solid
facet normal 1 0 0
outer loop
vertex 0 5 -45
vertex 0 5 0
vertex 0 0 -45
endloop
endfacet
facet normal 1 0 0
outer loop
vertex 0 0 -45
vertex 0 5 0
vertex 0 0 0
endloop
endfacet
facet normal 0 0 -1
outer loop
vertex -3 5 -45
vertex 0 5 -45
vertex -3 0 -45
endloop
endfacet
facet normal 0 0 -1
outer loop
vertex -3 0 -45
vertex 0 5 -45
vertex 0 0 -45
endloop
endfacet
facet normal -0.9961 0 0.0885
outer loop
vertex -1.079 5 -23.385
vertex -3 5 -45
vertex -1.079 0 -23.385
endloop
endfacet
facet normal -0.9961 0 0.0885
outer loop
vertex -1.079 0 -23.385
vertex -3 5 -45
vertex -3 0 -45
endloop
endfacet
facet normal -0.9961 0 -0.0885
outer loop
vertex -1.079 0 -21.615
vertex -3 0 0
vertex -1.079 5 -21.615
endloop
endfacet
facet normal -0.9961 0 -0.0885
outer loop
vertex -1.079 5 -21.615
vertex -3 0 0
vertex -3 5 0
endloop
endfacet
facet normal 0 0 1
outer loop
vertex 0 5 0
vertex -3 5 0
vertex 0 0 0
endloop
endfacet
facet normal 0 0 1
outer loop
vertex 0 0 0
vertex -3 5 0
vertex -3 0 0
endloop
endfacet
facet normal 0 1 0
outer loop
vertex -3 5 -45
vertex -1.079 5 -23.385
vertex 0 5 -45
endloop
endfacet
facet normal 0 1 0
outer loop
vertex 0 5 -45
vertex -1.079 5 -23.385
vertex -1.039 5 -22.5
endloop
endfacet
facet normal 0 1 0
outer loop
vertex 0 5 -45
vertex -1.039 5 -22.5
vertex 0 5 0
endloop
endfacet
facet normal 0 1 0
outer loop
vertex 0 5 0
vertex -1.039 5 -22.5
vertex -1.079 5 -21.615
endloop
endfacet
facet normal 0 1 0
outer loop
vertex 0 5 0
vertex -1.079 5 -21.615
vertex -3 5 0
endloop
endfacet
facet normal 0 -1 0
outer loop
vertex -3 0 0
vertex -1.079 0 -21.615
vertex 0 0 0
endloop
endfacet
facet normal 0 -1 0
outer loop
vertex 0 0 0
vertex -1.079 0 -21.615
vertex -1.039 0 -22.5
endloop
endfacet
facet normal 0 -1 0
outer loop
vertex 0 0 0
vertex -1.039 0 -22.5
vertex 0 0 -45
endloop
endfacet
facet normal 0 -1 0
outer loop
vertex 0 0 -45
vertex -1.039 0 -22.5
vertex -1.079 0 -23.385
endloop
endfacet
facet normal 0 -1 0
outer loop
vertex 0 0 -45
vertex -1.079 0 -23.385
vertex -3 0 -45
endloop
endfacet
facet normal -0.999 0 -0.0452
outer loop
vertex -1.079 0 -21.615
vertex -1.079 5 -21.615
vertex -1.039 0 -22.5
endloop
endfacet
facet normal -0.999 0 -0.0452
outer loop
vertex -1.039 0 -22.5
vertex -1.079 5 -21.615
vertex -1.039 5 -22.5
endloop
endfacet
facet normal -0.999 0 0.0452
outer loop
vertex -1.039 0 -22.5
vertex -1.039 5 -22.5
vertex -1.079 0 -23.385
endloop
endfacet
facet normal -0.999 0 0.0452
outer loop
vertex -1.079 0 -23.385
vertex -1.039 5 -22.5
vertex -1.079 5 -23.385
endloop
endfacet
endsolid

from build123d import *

# Parameters (mm, degrees)
SALIENTE_EXTRUIR1_DEPTH = 5
REDONDEO1_R             = 10


with BuildPart() as part:
    # Croquis1 → Saliente-Extruir1 (new body)
    with BuildSketch(Plane(origin=(0, 0, 0), x_dir=(1, 0, 0), z_dir=(0, 1, 0))):
        Polygon((0, 0), (-3, 0), (-1, 22.5), (-3, 45), (0, 45), align=None)
    extrude(amount=SALIENTE_EXTRUIR1_DEPTH)

    # Redondeo1
    redondeo1_edges = [part.edges().sort_by_distance(p)[0] for p in [
        (-1, 2.5, -22.5),
    ]]
    fillet(redondeo1_edges, radius=REDONDEO1_R)


solid = part.part
